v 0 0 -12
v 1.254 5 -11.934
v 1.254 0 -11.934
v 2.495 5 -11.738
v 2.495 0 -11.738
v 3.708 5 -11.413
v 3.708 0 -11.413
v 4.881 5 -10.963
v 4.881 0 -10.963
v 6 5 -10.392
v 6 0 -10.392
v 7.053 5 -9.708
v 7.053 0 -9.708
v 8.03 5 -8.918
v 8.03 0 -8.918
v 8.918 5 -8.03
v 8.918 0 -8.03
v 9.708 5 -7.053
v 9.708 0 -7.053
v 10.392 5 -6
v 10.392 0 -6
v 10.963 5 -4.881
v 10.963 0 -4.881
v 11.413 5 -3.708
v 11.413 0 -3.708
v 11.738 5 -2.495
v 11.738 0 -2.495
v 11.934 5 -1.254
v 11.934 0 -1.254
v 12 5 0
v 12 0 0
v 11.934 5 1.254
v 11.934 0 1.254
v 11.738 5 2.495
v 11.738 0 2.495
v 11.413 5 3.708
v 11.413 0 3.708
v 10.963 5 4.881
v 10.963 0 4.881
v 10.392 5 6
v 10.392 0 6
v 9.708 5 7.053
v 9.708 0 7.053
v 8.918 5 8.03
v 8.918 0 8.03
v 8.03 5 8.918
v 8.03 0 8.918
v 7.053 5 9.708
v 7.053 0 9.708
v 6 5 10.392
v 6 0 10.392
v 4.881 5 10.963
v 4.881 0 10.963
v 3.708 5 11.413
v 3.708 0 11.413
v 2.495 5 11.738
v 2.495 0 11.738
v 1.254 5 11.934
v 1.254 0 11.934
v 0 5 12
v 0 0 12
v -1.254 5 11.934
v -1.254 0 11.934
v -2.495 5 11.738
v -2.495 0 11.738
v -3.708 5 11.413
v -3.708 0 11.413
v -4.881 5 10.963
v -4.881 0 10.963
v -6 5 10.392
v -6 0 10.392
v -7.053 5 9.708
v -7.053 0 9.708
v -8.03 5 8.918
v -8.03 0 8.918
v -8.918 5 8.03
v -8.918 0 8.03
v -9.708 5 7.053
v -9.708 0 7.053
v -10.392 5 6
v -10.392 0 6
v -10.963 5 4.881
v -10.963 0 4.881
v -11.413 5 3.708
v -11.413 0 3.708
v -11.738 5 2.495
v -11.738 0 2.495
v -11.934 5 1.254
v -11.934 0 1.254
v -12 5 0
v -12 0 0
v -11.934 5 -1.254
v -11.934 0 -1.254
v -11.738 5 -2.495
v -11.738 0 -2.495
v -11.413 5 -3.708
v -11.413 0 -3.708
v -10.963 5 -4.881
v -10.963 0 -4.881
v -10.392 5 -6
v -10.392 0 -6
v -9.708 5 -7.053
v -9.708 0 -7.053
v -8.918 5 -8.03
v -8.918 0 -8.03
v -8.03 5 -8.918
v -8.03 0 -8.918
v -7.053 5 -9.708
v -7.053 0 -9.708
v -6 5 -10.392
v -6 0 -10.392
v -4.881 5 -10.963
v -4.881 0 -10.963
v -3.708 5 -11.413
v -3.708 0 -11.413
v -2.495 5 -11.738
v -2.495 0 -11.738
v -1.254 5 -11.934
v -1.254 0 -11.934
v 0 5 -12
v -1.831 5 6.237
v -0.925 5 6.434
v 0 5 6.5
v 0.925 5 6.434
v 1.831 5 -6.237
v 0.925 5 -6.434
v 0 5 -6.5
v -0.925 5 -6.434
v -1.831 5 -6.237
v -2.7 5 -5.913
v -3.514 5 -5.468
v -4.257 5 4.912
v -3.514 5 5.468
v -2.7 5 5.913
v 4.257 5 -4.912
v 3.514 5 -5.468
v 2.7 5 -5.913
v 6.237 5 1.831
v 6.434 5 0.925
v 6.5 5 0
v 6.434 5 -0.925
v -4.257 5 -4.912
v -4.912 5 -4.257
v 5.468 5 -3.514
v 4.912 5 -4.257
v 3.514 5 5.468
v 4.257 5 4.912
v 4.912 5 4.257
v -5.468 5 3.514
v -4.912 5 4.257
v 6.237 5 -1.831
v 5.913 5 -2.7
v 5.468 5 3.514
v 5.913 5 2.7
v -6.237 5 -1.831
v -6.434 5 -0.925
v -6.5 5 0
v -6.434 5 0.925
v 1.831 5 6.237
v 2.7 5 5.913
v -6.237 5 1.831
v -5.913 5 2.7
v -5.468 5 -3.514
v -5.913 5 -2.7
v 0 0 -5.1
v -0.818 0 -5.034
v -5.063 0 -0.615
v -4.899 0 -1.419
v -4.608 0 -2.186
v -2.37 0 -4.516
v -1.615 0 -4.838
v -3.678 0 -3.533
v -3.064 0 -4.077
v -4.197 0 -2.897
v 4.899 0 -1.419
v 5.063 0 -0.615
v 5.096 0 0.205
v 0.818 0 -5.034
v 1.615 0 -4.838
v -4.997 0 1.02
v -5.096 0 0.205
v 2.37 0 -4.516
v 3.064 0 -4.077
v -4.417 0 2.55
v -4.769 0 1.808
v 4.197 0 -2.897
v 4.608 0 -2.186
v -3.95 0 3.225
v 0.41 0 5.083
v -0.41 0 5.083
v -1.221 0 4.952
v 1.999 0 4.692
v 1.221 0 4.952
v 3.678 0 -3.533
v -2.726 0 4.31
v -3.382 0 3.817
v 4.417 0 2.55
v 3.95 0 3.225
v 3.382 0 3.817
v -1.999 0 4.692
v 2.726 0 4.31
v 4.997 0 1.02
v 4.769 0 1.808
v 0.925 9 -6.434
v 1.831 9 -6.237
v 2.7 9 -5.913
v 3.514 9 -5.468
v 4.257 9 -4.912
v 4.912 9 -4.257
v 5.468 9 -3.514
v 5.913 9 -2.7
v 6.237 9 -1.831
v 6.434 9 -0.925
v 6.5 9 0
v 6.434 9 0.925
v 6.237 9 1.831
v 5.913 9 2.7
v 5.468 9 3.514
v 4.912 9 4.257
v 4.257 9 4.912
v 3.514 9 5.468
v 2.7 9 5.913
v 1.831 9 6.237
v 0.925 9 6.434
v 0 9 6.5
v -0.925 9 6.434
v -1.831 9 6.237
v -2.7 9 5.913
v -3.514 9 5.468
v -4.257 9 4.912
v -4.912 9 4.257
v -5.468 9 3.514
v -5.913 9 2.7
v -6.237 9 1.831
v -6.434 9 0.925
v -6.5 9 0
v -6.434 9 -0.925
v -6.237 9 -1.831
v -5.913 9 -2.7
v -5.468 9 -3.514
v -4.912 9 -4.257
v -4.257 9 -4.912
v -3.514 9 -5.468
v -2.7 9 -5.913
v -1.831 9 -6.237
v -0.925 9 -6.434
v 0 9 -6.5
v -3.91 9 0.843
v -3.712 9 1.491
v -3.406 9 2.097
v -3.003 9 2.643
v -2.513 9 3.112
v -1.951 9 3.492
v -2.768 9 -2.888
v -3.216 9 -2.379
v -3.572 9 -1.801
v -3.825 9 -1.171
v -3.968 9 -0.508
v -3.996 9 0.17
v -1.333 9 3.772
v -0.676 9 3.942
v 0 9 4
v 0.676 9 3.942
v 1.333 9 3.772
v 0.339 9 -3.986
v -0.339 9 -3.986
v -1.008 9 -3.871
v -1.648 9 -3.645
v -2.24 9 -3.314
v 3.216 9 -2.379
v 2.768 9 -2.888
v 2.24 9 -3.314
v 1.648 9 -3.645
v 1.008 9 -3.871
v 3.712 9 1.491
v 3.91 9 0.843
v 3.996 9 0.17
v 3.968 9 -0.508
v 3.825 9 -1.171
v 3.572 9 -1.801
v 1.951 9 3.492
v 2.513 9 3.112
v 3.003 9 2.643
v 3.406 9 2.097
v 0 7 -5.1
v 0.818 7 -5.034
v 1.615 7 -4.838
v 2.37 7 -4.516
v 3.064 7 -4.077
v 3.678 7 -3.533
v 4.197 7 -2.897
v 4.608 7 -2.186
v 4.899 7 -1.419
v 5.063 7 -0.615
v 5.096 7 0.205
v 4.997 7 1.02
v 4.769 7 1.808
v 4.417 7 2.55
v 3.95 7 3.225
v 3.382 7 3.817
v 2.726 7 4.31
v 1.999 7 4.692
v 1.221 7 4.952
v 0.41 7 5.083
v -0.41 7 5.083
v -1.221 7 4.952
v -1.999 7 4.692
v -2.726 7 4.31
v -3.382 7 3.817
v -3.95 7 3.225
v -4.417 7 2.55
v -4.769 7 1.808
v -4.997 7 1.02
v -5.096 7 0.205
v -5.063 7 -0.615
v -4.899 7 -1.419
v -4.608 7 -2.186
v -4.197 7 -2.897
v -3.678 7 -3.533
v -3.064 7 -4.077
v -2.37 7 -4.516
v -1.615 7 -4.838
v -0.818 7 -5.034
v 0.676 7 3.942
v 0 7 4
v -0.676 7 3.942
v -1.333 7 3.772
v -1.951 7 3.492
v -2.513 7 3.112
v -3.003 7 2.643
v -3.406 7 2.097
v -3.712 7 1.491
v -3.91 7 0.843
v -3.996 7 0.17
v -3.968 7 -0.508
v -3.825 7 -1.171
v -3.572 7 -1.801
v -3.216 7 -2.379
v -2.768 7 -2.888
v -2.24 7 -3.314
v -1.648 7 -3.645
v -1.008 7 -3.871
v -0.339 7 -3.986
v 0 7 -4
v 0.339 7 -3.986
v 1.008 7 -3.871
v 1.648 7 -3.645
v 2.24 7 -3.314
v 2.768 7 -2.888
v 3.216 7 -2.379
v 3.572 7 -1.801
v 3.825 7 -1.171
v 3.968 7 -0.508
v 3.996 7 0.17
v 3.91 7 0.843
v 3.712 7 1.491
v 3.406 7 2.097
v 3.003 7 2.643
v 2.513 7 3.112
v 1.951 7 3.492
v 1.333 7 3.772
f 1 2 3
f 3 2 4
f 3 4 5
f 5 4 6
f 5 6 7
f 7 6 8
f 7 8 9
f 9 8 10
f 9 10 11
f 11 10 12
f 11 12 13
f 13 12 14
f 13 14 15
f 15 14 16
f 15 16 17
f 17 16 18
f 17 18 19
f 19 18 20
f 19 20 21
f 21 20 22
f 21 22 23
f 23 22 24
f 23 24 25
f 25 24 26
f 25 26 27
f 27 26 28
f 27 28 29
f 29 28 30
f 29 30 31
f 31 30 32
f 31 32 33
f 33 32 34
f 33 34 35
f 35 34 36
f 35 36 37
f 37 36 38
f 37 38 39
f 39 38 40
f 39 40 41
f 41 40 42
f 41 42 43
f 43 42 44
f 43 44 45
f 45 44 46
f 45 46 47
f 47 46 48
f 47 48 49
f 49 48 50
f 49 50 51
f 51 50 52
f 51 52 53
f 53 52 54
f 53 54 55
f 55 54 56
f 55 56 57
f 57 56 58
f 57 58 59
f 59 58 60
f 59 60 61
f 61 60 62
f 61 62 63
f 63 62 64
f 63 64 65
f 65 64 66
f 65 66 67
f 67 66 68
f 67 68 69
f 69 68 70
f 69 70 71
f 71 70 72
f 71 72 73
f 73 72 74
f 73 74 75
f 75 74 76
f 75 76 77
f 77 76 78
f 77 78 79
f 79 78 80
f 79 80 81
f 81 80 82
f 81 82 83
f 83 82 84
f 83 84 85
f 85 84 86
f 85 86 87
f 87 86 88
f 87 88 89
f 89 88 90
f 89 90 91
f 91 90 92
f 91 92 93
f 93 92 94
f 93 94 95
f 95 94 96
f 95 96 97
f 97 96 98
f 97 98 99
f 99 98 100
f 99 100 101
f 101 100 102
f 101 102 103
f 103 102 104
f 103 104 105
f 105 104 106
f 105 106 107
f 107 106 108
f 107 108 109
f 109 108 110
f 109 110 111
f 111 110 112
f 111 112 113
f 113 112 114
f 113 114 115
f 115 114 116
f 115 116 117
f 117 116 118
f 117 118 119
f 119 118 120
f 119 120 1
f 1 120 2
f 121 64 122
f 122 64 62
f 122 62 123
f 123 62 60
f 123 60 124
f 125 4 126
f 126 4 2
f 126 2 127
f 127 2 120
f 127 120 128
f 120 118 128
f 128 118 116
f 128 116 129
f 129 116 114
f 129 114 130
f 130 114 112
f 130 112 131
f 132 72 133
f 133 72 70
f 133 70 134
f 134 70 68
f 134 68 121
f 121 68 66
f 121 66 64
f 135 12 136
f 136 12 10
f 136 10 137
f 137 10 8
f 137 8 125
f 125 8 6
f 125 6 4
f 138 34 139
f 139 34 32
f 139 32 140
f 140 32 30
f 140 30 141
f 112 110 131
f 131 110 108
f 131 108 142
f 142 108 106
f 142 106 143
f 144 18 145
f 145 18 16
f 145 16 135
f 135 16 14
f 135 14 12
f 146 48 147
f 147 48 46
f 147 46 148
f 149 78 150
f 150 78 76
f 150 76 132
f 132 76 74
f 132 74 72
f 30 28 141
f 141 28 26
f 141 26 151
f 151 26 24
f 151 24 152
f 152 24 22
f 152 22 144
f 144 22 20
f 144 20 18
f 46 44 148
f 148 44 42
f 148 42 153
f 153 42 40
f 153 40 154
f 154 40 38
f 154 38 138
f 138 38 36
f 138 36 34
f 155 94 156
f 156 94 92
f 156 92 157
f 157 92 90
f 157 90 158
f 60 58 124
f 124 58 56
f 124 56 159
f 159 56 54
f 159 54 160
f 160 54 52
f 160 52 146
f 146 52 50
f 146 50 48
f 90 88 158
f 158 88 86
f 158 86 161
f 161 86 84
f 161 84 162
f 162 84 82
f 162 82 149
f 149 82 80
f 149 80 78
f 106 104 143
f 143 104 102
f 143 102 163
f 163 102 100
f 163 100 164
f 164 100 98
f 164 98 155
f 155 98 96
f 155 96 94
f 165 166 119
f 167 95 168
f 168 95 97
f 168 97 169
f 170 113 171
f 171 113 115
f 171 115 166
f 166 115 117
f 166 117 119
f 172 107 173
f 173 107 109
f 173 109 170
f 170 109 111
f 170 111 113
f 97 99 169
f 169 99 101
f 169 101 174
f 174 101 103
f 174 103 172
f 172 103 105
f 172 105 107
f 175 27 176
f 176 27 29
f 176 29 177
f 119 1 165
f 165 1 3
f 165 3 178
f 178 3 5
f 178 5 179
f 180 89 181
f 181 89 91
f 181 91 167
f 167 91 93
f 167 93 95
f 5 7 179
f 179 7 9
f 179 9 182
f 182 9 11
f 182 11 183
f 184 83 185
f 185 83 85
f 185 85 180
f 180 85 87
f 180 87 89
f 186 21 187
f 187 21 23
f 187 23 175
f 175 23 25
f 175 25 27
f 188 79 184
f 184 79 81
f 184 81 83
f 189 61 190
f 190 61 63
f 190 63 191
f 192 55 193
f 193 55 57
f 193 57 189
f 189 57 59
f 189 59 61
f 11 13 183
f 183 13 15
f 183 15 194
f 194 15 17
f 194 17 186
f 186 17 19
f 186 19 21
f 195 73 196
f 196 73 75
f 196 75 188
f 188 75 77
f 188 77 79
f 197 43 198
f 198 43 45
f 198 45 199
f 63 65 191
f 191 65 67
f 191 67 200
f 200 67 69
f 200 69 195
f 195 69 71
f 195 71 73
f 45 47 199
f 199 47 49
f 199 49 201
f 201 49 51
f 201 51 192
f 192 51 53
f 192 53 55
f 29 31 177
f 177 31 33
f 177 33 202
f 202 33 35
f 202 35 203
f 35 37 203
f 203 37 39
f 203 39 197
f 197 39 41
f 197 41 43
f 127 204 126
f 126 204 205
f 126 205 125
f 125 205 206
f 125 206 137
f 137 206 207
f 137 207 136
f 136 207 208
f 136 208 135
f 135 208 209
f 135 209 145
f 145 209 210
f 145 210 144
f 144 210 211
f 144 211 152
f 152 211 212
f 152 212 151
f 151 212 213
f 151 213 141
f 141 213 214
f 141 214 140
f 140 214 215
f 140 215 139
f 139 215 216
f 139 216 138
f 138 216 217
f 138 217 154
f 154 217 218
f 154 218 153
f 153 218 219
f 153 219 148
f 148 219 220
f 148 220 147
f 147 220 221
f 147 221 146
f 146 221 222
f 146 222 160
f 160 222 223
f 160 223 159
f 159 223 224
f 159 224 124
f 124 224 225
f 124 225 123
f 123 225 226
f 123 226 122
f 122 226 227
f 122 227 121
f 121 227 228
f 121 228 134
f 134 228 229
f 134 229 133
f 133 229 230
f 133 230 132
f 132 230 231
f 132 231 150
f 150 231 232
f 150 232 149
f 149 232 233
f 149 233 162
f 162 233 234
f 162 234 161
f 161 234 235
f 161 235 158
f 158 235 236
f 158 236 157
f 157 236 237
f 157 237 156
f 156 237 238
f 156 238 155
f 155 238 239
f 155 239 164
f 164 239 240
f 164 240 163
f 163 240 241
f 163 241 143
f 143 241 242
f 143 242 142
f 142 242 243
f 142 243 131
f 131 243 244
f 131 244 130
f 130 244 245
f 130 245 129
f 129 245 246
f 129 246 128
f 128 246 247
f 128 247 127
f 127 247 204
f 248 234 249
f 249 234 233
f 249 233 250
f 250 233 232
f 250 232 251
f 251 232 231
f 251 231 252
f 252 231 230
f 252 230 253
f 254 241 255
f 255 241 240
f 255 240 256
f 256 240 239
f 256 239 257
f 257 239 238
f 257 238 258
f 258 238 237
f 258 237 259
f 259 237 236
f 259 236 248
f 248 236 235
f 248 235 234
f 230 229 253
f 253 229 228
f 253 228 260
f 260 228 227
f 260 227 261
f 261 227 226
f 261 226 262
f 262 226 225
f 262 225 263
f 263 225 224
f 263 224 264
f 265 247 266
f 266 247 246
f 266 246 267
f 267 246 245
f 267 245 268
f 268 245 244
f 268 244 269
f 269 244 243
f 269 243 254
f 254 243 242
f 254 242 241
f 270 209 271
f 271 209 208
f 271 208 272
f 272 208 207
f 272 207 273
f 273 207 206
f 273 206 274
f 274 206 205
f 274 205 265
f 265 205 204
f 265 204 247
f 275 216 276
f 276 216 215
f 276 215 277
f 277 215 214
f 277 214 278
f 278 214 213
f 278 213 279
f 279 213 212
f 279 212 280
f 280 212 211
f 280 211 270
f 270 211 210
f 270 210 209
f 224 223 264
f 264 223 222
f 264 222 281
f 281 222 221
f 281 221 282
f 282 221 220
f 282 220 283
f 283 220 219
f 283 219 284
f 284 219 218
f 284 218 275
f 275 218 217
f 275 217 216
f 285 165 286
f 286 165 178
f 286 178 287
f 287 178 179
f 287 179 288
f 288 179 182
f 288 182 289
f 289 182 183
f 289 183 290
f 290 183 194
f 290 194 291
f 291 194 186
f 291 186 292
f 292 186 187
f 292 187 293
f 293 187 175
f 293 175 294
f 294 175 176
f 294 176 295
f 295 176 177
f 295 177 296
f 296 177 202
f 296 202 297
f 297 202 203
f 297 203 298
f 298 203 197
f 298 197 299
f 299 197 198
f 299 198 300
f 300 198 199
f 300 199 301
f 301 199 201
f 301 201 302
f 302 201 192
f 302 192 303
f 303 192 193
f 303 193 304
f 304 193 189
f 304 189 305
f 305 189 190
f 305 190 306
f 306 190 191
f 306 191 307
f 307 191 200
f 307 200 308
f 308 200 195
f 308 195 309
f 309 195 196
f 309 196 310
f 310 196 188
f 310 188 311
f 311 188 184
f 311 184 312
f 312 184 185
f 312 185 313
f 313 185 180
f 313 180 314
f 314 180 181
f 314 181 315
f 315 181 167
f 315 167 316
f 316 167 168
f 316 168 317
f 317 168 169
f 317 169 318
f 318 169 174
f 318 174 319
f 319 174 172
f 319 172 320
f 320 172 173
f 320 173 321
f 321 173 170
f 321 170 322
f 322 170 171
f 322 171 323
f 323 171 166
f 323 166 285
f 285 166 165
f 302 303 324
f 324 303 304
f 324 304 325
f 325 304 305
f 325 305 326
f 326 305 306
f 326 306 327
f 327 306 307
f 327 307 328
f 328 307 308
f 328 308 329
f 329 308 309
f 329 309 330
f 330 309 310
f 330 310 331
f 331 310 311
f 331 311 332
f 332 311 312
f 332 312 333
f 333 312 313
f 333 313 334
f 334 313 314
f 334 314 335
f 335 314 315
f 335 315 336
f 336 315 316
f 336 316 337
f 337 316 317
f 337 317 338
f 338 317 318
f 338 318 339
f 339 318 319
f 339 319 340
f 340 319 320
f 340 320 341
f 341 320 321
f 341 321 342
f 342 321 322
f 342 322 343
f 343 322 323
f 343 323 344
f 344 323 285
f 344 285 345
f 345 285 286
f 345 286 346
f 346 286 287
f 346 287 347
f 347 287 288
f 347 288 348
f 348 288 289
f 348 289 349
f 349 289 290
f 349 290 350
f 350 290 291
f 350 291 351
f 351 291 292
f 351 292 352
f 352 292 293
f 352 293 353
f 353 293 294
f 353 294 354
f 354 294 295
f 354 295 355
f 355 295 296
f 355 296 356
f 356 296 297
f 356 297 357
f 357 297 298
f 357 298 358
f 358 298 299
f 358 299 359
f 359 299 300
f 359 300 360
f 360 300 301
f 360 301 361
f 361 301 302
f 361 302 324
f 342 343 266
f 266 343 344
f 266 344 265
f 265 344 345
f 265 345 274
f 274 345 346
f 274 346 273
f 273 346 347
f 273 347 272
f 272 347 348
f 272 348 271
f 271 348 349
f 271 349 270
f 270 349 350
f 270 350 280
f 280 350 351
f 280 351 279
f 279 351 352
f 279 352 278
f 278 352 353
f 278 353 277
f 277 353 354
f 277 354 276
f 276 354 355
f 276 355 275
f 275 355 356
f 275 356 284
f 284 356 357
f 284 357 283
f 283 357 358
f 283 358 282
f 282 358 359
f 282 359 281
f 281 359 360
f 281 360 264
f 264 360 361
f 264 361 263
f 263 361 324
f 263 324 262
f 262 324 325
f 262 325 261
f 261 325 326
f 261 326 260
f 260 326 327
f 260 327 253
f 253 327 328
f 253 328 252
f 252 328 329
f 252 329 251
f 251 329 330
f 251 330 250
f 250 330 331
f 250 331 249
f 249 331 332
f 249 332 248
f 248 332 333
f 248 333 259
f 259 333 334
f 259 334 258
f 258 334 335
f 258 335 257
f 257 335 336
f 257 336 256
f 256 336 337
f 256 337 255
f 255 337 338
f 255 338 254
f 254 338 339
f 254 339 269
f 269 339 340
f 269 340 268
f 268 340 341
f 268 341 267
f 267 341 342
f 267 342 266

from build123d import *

# Parameters (mm, degrees)
SKETCH1_R           = 12
BOSS_EXTRUDE1_DEPTH = 5
SKETCH2_R           = 6.5
BOSS_EXTRUDE2_DEPTH = 4
SKETCH3_R           = 5.1
CUT_EXTRUDE1_DEPTH  = 7
SKETCH4_R           = 4
CUT_EXTRUDE2_DEPTH  = 7


with BuildPart() as part:
    # Sketch1 → Boss-Extrude1 (new body)
    with BuildSketch(Plane(origin=(0, 0, 0), x_dir=(1, 0, 0), z_dir=(0, 1, 0))):
        Circle(SKETCH1_R)
    extrude(amount=BOSS_EXTRUDE1_DEPTH)

    # Sketch2 → Boss-Extrude2 (add)
    with BuildSketch(Plane(origin=(0, 5, 0), x_dir=(1, 0, 0), z_dir=(0, 1, 0))):
        Circle(SKETCH2_R)
    extrude(amount=BOSS_EXTRUDE2_DEPTH)

    # Sketch3 → Cut-Extrude1 (cut)
    with BuildSketch(Plane.XZ):
        Circle(SKETCH3_R)
    extrude(amount=-CUT_EXTRUDE1_DEPTH, mode=Mode.SUBTRACT)

    # Sketch4 → Cut-Extrude2 (cut)
    with BuildSketch(Plane(origin=(0, 9, 0), x_dir=(1, 0, 0), z_dir=(0, 1, 0))):
        Circle(SKETCH4_R)
    extrude(amount=-CUT_EXTRUDE2_DEPTH, mode=Mode.SUBTRACT)


solid = part.part
